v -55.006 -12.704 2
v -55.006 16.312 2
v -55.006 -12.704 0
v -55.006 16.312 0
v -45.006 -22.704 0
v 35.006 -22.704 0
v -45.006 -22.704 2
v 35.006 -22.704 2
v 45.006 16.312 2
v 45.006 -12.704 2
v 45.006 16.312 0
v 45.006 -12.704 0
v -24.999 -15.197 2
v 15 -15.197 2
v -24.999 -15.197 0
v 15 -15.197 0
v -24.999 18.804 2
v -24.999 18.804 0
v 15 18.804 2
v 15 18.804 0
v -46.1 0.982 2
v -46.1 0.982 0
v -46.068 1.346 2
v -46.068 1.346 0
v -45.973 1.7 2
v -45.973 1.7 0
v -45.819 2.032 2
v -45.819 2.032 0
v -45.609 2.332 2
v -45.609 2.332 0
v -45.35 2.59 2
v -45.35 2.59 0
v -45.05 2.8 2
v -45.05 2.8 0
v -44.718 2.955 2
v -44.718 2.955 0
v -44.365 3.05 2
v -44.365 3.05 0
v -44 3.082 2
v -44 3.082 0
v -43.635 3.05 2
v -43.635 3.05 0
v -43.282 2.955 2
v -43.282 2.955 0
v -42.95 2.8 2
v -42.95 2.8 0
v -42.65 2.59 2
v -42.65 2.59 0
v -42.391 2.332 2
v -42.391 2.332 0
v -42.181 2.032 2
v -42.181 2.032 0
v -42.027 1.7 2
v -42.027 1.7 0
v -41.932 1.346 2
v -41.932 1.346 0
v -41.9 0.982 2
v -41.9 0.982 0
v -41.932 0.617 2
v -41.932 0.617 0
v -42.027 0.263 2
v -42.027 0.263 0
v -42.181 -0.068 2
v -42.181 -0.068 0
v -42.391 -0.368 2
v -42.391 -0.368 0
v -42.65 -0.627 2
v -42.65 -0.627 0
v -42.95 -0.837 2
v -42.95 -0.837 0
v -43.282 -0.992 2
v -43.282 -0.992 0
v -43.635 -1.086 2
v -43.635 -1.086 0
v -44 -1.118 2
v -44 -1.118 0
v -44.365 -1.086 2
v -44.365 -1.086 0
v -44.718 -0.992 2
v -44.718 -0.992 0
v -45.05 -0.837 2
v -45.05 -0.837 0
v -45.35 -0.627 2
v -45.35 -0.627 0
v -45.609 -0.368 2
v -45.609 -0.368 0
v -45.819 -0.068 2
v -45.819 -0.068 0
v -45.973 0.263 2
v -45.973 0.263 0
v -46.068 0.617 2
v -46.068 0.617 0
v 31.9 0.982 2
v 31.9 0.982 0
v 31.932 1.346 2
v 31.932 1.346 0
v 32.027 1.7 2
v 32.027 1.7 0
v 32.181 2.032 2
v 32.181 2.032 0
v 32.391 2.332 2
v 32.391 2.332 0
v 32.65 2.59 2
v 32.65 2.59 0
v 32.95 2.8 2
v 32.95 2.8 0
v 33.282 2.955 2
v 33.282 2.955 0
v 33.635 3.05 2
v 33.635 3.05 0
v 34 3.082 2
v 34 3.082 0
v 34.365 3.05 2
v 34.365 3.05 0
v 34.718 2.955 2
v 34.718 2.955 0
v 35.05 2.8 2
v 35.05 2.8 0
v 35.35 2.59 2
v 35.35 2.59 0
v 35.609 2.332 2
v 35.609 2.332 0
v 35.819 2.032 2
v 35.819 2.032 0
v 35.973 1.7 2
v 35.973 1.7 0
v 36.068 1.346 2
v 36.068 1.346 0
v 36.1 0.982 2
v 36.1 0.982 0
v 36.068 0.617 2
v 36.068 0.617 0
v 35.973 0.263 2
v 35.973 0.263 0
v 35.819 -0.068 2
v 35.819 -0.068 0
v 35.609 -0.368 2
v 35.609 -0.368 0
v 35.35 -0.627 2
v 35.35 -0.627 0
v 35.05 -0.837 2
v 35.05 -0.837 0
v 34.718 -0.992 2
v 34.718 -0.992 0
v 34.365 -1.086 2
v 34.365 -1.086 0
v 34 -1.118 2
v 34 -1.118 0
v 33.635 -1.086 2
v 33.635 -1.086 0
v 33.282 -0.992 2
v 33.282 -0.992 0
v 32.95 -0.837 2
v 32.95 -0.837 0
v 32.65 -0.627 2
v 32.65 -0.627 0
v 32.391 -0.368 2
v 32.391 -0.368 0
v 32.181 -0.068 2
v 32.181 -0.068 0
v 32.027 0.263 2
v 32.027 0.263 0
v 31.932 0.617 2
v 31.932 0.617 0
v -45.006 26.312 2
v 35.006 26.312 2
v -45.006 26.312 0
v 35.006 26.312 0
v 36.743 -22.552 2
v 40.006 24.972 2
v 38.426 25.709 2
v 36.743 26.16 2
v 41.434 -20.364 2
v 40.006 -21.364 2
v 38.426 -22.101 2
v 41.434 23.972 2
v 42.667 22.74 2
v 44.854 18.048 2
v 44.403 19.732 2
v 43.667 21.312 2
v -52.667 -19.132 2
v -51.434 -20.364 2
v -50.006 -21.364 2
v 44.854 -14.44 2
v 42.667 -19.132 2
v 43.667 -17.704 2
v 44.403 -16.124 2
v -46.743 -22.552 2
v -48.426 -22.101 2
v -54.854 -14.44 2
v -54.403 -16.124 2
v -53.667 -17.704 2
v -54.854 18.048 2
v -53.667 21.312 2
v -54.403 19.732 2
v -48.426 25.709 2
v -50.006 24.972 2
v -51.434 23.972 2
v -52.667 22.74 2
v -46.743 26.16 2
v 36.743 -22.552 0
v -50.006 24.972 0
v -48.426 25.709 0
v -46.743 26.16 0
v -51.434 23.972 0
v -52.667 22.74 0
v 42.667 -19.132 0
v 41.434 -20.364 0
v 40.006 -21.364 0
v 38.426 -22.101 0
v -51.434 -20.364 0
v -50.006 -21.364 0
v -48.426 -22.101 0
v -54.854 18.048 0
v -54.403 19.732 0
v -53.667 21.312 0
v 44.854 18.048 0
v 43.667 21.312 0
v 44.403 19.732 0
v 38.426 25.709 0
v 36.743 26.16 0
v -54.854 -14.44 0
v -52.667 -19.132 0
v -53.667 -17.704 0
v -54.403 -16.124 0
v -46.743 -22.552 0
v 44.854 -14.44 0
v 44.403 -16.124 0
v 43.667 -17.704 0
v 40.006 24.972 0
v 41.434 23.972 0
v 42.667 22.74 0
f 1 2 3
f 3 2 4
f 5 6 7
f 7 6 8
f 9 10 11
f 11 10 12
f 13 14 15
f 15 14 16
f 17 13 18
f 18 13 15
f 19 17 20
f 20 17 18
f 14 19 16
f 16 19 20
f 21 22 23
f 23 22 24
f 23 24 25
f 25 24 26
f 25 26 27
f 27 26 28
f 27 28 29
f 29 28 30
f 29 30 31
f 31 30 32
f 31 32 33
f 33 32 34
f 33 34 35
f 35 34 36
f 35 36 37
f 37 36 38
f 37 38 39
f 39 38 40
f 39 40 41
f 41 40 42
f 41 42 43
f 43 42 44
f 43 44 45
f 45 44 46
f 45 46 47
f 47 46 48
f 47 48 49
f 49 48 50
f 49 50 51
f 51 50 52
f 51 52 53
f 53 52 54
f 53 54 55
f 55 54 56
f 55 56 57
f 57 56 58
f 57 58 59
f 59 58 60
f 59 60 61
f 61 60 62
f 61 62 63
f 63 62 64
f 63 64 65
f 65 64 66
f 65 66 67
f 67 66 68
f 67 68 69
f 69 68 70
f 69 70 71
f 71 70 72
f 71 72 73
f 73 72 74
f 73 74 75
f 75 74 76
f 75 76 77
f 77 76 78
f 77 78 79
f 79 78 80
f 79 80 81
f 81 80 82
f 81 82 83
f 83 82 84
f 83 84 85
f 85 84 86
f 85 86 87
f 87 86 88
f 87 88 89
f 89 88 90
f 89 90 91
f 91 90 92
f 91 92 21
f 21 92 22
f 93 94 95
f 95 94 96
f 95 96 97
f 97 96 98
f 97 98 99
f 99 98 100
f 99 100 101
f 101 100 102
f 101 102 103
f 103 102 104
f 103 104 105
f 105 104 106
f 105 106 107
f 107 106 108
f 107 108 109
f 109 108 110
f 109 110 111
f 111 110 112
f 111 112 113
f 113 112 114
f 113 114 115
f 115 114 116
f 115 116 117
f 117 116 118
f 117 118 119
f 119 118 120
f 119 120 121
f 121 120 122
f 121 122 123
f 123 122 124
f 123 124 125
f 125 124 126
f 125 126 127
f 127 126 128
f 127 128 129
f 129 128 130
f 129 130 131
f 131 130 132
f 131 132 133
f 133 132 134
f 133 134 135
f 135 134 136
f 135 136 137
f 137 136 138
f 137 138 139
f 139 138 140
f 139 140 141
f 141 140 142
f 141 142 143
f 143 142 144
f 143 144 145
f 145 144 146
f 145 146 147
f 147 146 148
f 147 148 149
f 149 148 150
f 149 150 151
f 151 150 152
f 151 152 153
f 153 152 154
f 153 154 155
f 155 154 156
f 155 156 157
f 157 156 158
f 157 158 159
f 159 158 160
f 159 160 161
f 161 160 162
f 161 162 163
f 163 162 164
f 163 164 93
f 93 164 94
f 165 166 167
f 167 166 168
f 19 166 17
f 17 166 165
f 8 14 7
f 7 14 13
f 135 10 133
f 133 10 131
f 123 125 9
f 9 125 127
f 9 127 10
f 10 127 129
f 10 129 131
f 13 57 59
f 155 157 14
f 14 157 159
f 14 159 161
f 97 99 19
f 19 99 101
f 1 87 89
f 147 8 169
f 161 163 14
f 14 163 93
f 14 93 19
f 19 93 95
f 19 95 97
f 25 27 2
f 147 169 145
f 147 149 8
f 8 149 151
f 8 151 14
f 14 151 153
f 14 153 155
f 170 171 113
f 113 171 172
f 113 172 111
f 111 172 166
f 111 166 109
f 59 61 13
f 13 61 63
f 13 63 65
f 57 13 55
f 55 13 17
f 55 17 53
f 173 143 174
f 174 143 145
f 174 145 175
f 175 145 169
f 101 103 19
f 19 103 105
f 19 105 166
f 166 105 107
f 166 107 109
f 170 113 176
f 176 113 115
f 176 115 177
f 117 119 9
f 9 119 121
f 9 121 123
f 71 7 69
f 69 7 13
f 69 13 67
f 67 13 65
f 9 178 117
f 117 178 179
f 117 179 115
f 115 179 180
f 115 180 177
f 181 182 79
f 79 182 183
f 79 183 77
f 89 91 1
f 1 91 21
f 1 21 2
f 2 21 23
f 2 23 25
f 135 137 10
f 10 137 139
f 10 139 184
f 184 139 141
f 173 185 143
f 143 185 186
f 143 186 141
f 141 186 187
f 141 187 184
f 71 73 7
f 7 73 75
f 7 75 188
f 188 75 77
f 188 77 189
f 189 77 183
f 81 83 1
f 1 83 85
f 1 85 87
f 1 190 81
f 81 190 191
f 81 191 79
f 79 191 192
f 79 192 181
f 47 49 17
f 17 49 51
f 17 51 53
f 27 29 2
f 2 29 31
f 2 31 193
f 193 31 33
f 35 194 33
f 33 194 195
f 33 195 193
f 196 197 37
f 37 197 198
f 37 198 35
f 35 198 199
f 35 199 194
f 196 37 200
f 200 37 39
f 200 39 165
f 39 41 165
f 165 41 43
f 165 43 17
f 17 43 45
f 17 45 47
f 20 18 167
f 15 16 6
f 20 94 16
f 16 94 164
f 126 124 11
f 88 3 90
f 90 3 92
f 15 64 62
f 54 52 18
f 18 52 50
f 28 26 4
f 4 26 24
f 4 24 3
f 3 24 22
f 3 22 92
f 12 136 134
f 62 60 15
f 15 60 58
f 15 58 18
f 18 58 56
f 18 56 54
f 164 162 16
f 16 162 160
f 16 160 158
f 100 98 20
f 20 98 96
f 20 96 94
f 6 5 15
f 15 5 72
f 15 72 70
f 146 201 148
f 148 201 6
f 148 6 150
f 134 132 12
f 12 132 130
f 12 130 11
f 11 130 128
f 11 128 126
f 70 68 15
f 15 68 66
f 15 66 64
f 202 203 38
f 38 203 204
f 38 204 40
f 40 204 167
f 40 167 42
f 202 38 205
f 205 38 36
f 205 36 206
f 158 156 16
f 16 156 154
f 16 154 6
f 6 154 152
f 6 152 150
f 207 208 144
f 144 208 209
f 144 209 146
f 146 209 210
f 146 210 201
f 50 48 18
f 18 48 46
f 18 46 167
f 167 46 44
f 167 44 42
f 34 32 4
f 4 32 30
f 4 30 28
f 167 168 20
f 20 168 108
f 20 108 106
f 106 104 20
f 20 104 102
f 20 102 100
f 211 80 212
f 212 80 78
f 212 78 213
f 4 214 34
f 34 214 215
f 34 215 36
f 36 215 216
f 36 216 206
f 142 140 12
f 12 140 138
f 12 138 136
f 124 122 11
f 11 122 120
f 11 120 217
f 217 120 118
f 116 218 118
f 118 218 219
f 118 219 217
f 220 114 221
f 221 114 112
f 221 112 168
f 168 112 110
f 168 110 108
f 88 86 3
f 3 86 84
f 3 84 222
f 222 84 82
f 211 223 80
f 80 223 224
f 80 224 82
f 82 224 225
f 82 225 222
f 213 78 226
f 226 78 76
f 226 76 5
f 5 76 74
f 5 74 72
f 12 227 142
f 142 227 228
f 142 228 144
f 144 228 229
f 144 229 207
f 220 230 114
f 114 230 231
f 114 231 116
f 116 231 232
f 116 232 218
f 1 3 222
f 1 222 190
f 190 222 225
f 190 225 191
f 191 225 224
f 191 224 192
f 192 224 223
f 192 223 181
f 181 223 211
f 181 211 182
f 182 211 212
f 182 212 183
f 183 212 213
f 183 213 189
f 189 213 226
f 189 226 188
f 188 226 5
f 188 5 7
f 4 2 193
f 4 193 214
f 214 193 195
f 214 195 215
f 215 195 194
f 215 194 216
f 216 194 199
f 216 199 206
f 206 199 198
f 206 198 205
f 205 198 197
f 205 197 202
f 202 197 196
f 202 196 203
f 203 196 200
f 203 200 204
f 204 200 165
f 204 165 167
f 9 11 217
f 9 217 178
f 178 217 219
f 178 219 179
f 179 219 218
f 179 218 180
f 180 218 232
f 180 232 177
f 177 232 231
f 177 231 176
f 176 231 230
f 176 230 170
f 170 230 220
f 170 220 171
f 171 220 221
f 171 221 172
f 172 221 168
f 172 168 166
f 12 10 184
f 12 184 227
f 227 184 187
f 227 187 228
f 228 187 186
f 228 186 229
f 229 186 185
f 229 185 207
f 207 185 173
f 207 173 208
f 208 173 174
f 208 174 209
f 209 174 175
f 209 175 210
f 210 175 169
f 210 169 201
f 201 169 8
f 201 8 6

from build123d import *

# Parameters (mm, degrees)
SKETCH1_W           = 100.01257602
SKETCH1_H           = 49.015555291
SKETCH1_R           = 2.1
SKETCH1_W_2         = 39.998541852
SKETCH1_H_2         = 34.001078585
BOSS_EXTRUDE1_DEPTH = 2
FILLET1_R           = 10


with BuildPart() as part:
    # Sketch1 → Boss-Extrude1 (new body)
    with BuildSketch(Plane.XY):
        with Locations((-5, 1.804116785)):
            Rectangle(SKETCH1_W, SKETCH1_H)
        with Locations((-44, 0.98172734)):
            Circle(SKETCH1_R, mode=Mode.SUBTRACT)
        with Locations((34, 0.98172734)):
            Circle(SKETCH1_R, mode=Mode.SUBTRACT)
        with Locations((-4.990588882, 1.794943283)):
            Rectangle(SKETCH1_W_2, SKETCH1_H_2, mode=Mode.SUBTRACT)
    extrude(amount=BOSS_EXTRUDE1_DEPTH)

    # Fillet1
    fillet1_edges = [part.edges().sort_by_distance(p)[0] for p in [
        (-55.00628801, 26.311894431, 1),
        (45.00628801, 26.311894431, 1),
        (45.00628801, -22.70366086, 1),
        (-55.00628801, -22.70366086, 1),
    ]]
    fillet(fillet1_edges, radius=FILLET1_R)


solid = part.part
